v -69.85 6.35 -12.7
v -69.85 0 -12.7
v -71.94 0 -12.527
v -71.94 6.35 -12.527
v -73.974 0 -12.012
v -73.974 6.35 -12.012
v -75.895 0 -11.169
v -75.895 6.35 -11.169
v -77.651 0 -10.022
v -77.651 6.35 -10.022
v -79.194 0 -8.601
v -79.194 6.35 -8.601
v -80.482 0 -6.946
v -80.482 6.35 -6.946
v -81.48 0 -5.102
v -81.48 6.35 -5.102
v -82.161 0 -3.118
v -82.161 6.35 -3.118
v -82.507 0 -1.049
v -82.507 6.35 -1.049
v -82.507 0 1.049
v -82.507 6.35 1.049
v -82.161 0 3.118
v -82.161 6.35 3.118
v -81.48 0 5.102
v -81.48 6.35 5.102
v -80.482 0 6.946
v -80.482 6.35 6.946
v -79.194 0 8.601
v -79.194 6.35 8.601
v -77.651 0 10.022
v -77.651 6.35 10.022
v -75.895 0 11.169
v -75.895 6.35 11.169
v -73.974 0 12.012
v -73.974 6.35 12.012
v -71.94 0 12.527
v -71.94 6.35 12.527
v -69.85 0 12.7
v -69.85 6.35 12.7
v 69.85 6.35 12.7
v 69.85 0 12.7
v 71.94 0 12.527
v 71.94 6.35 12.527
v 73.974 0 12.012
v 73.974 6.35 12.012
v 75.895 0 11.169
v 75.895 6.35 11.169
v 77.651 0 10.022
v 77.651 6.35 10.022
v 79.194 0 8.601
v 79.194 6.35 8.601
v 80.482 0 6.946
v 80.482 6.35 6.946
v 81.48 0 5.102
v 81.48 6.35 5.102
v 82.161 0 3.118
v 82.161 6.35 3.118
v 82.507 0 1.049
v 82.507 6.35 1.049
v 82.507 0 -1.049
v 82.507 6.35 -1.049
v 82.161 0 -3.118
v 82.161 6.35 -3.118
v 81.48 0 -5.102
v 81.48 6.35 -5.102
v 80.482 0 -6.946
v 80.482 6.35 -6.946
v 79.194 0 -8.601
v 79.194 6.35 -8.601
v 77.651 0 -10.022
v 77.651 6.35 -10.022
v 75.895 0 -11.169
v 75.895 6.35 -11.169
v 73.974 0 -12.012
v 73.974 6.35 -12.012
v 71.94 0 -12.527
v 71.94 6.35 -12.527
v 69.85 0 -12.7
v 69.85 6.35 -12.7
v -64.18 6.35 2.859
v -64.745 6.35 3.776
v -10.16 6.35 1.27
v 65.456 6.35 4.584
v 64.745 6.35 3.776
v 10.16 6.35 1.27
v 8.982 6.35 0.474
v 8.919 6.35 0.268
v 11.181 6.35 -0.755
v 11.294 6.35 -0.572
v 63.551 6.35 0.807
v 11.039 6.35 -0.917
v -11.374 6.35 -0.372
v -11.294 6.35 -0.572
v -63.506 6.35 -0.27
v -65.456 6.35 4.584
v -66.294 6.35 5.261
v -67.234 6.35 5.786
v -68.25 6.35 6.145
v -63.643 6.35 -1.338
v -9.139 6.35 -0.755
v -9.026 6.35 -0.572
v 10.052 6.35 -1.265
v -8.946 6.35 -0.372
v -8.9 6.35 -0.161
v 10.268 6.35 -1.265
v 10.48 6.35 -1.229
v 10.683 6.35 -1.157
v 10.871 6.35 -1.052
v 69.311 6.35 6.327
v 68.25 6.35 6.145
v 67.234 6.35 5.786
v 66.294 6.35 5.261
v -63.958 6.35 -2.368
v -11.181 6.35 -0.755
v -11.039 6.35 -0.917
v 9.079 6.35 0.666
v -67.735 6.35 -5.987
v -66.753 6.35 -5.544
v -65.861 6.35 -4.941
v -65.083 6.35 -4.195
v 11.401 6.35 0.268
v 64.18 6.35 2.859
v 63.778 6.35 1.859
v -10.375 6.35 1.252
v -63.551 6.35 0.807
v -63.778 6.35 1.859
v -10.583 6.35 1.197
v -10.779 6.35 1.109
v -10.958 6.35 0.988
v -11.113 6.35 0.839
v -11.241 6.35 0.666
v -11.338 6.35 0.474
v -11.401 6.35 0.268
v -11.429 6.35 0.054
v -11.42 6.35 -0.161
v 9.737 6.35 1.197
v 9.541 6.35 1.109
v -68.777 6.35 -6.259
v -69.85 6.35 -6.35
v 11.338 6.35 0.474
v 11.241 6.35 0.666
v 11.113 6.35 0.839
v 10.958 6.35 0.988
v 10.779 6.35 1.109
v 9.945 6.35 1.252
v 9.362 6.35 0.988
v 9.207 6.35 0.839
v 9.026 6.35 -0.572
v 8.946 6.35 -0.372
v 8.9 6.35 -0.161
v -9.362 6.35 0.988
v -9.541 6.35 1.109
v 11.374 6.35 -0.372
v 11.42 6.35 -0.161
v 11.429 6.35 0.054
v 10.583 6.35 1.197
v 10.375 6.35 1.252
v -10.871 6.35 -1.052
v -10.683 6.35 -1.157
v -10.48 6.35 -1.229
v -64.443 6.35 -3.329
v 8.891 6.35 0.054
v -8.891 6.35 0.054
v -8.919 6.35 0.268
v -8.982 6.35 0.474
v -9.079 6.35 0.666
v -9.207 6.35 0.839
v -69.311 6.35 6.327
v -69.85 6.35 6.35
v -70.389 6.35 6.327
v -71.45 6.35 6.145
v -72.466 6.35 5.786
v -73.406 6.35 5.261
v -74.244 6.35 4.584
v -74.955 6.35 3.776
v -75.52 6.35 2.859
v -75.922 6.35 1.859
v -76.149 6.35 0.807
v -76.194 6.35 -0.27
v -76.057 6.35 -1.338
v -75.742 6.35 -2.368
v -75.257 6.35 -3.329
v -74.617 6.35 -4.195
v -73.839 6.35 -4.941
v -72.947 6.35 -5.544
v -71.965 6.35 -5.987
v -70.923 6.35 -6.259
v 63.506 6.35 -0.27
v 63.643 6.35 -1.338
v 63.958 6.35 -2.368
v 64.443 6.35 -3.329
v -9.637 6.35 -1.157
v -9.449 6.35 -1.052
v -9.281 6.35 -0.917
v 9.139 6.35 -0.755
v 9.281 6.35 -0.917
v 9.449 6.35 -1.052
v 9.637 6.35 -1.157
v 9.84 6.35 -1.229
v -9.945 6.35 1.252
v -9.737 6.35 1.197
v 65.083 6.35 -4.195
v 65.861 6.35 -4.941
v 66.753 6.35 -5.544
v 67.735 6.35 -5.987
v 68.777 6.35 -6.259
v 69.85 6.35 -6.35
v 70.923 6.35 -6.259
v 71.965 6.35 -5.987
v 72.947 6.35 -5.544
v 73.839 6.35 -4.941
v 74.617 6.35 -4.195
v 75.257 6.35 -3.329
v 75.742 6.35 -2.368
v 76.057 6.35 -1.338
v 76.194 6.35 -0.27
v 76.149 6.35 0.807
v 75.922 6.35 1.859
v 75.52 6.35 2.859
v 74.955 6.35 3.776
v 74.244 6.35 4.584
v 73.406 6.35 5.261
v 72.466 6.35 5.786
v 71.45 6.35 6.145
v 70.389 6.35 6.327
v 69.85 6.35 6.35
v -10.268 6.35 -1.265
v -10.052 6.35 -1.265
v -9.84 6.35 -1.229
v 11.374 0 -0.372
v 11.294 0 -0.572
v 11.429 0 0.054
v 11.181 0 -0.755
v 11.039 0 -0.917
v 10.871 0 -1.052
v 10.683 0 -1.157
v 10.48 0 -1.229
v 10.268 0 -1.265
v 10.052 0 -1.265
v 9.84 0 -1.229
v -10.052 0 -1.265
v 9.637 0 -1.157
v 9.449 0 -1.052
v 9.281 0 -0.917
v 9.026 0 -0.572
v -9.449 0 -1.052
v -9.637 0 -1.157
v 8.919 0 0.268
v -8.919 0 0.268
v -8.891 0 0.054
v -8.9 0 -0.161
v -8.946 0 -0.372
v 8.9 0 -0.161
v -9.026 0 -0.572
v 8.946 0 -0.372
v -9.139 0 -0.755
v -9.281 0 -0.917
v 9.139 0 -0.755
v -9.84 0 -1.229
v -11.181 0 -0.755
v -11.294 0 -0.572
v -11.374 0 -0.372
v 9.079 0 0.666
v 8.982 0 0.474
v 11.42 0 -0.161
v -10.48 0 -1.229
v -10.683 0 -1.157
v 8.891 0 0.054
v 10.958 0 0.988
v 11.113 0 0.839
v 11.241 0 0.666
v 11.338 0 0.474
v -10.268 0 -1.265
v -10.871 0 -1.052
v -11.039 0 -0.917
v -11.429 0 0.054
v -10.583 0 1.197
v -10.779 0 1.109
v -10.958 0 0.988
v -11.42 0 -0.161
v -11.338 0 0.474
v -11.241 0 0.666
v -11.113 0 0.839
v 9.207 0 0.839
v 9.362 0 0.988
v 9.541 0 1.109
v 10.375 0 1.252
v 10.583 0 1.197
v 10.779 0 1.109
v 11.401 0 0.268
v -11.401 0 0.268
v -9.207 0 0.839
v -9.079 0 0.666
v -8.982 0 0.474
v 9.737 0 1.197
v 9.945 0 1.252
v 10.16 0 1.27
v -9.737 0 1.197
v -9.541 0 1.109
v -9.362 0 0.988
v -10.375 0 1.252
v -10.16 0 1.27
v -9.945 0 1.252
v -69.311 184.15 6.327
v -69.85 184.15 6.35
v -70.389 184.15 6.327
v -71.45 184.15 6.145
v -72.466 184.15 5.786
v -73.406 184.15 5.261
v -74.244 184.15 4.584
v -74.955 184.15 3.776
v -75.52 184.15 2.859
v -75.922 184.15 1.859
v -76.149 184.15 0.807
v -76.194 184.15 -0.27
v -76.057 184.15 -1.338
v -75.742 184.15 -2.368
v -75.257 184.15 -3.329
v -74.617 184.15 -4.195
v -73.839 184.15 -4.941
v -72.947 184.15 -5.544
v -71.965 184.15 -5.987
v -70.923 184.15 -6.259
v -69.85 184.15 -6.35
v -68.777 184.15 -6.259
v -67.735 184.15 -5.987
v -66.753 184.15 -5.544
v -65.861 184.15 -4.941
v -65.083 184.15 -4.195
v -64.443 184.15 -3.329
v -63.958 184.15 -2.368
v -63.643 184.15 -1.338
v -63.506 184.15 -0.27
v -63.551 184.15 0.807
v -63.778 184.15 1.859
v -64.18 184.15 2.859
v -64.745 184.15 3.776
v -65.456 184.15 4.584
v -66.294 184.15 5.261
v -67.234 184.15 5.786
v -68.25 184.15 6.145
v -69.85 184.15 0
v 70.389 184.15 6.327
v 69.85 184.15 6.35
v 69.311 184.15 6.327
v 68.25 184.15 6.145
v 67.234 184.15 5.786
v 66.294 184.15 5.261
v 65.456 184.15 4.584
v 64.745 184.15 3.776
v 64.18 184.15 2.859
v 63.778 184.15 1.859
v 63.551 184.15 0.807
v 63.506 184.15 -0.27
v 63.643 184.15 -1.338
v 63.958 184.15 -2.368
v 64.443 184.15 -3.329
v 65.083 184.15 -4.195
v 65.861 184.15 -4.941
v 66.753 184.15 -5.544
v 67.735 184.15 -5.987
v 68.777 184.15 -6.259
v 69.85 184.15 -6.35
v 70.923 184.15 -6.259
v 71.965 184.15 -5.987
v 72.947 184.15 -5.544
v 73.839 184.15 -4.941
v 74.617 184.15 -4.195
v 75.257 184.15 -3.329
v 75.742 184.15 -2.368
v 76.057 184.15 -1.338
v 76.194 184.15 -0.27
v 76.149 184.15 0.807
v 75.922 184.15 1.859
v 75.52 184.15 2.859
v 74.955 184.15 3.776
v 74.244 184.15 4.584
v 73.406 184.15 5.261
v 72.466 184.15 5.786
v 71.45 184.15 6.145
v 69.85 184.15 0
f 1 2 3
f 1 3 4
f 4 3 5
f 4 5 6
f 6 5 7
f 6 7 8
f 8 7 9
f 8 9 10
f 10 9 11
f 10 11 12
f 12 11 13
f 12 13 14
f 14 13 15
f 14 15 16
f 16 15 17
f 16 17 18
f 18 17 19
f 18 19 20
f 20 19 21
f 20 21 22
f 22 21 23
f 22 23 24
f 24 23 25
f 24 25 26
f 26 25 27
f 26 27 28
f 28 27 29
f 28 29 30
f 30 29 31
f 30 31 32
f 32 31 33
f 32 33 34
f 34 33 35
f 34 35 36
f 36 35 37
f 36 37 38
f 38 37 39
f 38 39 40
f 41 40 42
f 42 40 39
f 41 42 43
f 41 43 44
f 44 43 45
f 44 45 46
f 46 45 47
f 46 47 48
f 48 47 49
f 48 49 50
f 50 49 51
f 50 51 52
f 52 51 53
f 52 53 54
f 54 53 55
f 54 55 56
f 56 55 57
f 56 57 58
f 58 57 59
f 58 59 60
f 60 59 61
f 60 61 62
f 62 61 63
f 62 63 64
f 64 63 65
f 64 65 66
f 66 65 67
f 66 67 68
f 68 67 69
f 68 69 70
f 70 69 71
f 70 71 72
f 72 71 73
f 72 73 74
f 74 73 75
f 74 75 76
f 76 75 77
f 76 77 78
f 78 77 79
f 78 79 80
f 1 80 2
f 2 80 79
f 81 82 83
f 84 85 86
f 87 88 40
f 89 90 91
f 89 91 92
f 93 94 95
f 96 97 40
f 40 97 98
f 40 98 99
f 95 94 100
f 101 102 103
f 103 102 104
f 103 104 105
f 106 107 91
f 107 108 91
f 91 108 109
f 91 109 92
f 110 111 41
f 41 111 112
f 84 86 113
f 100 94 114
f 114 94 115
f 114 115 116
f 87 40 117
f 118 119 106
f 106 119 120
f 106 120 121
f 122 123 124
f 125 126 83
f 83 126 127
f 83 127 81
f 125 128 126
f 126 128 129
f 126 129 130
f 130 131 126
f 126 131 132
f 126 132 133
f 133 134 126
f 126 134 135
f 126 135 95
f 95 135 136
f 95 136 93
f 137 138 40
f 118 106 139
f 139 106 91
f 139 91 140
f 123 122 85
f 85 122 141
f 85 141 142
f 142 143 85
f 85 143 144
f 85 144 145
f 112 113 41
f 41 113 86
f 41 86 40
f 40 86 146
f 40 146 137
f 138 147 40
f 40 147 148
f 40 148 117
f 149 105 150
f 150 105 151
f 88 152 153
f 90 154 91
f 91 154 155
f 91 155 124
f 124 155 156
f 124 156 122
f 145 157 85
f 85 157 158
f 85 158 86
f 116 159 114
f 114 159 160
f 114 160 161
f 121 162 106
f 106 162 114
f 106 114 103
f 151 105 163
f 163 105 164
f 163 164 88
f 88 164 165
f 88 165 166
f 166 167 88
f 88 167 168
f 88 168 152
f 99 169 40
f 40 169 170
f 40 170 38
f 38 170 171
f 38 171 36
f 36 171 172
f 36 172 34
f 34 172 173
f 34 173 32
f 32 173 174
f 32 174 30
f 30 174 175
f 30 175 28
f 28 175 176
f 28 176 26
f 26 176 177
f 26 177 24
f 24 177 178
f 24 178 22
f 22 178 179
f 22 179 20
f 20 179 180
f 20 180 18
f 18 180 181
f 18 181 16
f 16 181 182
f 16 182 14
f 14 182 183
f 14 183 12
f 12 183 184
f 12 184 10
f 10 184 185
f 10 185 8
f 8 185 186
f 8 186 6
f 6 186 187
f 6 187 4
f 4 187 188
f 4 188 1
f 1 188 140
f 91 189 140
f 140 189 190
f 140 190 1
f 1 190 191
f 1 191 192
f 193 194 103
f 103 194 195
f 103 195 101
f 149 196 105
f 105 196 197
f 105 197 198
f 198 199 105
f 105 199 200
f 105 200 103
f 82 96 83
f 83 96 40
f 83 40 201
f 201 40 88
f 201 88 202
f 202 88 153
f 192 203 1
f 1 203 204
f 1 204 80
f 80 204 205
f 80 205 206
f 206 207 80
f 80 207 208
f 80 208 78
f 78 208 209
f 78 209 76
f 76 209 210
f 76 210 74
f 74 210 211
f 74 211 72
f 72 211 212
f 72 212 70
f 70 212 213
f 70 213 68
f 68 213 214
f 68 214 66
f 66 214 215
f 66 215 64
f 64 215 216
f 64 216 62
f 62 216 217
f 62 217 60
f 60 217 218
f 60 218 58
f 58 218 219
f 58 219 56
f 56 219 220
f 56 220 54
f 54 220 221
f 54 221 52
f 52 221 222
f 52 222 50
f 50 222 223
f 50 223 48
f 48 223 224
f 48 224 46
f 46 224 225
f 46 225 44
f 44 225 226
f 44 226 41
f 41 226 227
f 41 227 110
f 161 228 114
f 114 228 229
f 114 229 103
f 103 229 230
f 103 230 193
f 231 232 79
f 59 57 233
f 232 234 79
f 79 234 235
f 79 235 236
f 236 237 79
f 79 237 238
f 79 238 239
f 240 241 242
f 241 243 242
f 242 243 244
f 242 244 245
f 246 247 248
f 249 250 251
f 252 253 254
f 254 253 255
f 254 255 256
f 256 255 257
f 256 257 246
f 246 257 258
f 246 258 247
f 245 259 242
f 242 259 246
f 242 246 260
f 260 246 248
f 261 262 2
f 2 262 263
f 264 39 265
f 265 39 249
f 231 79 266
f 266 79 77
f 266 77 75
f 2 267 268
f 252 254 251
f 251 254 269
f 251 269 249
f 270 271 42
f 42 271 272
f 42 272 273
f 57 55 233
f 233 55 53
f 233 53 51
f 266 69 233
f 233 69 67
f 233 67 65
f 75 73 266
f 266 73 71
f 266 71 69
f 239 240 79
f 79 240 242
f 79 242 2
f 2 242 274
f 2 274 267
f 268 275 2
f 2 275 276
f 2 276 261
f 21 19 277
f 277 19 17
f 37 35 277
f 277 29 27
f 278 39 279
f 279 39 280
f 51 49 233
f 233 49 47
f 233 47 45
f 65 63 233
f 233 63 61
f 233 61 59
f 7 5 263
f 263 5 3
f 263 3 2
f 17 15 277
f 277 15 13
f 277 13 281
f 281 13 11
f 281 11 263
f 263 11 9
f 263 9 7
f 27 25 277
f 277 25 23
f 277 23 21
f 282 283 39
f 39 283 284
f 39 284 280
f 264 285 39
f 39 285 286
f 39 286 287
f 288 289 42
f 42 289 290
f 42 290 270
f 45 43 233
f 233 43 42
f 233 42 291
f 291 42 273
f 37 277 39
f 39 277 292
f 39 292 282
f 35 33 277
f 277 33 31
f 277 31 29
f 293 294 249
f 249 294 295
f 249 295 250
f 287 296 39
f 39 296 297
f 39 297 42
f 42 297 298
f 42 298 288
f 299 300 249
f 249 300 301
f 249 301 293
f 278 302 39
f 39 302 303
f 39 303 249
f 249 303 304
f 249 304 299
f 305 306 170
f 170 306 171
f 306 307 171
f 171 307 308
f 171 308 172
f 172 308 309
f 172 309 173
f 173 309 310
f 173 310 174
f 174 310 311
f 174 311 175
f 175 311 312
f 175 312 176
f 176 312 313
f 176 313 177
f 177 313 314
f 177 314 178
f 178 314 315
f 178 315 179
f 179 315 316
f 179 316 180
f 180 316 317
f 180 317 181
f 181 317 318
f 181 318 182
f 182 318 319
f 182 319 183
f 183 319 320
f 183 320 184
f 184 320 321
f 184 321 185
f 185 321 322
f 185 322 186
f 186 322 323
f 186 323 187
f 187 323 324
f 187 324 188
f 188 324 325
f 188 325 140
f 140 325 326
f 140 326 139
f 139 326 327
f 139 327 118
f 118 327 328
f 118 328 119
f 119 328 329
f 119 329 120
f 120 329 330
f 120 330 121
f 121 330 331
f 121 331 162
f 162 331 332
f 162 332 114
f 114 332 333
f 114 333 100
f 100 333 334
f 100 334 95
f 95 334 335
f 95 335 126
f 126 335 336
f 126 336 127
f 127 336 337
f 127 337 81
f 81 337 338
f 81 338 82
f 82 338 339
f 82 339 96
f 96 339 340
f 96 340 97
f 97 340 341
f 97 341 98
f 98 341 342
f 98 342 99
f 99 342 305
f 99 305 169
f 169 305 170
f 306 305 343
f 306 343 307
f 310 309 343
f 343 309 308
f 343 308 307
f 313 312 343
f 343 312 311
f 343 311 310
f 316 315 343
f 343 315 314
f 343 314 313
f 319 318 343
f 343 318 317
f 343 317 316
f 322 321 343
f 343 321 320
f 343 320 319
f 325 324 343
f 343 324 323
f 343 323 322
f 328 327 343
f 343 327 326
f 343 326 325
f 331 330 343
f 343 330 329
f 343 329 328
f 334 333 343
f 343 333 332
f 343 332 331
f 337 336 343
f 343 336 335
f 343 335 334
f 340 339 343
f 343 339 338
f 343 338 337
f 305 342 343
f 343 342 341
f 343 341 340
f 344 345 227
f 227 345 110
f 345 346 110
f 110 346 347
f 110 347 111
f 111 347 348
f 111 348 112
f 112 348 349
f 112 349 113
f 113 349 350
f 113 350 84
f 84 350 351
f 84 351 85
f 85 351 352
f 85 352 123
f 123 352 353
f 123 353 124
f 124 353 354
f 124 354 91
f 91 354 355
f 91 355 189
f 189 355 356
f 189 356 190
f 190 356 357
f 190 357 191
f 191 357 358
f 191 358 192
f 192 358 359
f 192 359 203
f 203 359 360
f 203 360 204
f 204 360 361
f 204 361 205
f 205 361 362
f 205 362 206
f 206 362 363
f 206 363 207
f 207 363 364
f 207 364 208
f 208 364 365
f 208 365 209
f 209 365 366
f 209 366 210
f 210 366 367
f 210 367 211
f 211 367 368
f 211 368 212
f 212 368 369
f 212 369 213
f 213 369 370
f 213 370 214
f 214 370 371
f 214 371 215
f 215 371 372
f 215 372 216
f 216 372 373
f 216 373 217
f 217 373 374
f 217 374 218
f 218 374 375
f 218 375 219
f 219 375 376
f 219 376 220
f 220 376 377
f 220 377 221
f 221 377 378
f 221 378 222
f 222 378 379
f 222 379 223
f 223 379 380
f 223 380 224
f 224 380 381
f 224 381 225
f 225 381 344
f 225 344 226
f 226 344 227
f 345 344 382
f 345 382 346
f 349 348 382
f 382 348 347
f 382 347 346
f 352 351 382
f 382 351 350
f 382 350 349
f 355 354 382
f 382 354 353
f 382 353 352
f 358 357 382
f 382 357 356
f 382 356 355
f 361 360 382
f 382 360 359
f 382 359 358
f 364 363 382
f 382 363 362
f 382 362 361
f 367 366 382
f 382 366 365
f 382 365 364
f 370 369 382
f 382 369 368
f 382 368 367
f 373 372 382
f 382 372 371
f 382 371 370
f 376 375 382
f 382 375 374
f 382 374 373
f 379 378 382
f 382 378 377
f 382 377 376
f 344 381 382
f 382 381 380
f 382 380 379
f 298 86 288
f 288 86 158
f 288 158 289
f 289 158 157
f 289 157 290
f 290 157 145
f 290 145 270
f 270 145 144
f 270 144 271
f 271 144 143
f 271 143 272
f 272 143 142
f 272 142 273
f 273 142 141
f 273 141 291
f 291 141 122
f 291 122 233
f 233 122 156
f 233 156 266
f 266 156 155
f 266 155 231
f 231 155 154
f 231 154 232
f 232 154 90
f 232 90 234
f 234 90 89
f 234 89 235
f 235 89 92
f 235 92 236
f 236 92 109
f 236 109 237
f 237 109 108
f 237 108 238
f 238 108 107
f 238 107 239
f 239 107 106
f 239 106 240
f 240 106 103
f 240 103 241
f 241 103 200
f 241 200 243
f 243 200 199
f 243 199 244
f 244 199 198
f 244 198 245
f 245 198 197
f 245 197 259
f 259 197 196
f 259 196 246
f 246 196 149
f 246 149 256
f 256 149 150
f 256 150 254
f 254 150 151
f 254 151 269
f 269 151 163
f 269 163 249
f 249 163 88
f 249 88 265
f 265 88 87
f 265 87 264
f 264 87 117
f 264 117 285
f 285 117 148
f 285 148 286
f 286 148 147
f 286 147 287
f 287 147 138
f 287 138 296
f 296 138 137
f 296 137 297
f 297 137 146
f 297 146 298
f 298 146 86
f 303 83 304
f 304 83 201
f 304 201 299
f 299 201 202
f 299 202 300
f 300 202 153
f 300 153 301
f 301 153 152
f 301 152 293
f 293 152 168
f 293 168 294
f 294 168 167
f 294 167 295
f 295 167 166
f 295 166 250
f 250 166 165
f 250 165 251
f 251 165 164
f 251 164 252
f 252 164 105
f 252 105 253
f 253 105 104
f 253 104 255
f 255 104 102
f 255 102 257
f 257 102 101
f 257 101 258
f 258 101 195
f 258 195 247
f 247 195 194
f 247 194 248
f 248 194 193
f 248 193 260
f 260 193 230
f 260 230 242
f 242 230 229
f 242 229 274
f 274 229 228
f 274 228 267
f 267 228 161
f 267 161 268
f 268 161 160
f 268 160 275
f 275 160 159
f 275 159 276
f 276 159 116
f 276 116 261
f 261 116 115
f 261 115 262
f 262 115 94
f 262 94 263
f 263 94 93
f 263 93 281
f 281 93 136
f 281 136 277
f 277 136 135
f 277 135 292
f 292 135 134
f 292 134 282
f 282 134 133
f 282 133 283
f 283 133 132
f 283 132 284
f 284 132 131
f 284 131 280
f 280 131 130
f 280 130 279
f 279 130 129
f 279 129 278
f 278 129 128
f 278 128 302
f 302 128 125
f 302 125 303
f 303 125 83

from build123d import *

# Parameters (mm, degrees)
SKETCH1_W           = 139.7
SKETCH1_H           = 25.4
BOSS_EXTRUDE1_DEPTH = 6.35
SKETCH2_R           = 6.35
BOSS_EXTRUDE2_DEPTH = 177.8
SKETCH3_R           = 1.27
CUT_EXTRUDE1_DEPTH  = 7.35


with BuildPart() as part:
    # Sketch1 → Boss-Extrude1 (new body)
    with BuildSketch(Plane(origin=(0, 0, 0), x_dir=(1, 0, 0), z_dir=(0, 1, 0))):
        with BuildLine():
            Line((-69.85, 12.7), (-69.85, -12.7))
            ThreePointArc((-69.85, -12.7), (-82.55, 0), (-69.85, 12.7))
        make_face()
        with BuildLine():
            ThreePointArc((69.85, 12.7), (82.55, 0), (69.85, -12.7))
            Line((69.85, -12.7), (69.85, 12.7))
        make_face()
        Rectangle(SKETCH1_W, SKETCH1_H)
    extrude(amount=BOSS_EXTRUDE1_DEPTH)

    # Sketch2 → Boss-Extrude2 (add)
    with BuildSketch(Plane(origin=(0, 6.35, 0), x_dir=(1, 0, 0), z_dir=(0, 1, 0))):
        with Locations((-69.85, 0)):
            Circle(SKETCH2_R)
        with Locations((69.85, 0)):
            Circle(SKETCH2_R)
    extrude(amount=BOSS_EXTRUDE2_DEPTH)

    # Sketch3 → Cut-Extrude1 (cut, through all)
    with BuildSketch(Plane(origin=(0, 6.35, 0), x_dir=(1, 0, 0), z_dir=(0, 1, 0))):
        with Locations((-10.16, 0)):
            Circle(SKETCH3_R)
        with Locations((10.16, 0)):
            Circle(SKETCH3_R)
    extrude(amount=-CUT_EXTRUDE1_DEPTH, mode=Mode.SUBTRACT)


solid = part.part
